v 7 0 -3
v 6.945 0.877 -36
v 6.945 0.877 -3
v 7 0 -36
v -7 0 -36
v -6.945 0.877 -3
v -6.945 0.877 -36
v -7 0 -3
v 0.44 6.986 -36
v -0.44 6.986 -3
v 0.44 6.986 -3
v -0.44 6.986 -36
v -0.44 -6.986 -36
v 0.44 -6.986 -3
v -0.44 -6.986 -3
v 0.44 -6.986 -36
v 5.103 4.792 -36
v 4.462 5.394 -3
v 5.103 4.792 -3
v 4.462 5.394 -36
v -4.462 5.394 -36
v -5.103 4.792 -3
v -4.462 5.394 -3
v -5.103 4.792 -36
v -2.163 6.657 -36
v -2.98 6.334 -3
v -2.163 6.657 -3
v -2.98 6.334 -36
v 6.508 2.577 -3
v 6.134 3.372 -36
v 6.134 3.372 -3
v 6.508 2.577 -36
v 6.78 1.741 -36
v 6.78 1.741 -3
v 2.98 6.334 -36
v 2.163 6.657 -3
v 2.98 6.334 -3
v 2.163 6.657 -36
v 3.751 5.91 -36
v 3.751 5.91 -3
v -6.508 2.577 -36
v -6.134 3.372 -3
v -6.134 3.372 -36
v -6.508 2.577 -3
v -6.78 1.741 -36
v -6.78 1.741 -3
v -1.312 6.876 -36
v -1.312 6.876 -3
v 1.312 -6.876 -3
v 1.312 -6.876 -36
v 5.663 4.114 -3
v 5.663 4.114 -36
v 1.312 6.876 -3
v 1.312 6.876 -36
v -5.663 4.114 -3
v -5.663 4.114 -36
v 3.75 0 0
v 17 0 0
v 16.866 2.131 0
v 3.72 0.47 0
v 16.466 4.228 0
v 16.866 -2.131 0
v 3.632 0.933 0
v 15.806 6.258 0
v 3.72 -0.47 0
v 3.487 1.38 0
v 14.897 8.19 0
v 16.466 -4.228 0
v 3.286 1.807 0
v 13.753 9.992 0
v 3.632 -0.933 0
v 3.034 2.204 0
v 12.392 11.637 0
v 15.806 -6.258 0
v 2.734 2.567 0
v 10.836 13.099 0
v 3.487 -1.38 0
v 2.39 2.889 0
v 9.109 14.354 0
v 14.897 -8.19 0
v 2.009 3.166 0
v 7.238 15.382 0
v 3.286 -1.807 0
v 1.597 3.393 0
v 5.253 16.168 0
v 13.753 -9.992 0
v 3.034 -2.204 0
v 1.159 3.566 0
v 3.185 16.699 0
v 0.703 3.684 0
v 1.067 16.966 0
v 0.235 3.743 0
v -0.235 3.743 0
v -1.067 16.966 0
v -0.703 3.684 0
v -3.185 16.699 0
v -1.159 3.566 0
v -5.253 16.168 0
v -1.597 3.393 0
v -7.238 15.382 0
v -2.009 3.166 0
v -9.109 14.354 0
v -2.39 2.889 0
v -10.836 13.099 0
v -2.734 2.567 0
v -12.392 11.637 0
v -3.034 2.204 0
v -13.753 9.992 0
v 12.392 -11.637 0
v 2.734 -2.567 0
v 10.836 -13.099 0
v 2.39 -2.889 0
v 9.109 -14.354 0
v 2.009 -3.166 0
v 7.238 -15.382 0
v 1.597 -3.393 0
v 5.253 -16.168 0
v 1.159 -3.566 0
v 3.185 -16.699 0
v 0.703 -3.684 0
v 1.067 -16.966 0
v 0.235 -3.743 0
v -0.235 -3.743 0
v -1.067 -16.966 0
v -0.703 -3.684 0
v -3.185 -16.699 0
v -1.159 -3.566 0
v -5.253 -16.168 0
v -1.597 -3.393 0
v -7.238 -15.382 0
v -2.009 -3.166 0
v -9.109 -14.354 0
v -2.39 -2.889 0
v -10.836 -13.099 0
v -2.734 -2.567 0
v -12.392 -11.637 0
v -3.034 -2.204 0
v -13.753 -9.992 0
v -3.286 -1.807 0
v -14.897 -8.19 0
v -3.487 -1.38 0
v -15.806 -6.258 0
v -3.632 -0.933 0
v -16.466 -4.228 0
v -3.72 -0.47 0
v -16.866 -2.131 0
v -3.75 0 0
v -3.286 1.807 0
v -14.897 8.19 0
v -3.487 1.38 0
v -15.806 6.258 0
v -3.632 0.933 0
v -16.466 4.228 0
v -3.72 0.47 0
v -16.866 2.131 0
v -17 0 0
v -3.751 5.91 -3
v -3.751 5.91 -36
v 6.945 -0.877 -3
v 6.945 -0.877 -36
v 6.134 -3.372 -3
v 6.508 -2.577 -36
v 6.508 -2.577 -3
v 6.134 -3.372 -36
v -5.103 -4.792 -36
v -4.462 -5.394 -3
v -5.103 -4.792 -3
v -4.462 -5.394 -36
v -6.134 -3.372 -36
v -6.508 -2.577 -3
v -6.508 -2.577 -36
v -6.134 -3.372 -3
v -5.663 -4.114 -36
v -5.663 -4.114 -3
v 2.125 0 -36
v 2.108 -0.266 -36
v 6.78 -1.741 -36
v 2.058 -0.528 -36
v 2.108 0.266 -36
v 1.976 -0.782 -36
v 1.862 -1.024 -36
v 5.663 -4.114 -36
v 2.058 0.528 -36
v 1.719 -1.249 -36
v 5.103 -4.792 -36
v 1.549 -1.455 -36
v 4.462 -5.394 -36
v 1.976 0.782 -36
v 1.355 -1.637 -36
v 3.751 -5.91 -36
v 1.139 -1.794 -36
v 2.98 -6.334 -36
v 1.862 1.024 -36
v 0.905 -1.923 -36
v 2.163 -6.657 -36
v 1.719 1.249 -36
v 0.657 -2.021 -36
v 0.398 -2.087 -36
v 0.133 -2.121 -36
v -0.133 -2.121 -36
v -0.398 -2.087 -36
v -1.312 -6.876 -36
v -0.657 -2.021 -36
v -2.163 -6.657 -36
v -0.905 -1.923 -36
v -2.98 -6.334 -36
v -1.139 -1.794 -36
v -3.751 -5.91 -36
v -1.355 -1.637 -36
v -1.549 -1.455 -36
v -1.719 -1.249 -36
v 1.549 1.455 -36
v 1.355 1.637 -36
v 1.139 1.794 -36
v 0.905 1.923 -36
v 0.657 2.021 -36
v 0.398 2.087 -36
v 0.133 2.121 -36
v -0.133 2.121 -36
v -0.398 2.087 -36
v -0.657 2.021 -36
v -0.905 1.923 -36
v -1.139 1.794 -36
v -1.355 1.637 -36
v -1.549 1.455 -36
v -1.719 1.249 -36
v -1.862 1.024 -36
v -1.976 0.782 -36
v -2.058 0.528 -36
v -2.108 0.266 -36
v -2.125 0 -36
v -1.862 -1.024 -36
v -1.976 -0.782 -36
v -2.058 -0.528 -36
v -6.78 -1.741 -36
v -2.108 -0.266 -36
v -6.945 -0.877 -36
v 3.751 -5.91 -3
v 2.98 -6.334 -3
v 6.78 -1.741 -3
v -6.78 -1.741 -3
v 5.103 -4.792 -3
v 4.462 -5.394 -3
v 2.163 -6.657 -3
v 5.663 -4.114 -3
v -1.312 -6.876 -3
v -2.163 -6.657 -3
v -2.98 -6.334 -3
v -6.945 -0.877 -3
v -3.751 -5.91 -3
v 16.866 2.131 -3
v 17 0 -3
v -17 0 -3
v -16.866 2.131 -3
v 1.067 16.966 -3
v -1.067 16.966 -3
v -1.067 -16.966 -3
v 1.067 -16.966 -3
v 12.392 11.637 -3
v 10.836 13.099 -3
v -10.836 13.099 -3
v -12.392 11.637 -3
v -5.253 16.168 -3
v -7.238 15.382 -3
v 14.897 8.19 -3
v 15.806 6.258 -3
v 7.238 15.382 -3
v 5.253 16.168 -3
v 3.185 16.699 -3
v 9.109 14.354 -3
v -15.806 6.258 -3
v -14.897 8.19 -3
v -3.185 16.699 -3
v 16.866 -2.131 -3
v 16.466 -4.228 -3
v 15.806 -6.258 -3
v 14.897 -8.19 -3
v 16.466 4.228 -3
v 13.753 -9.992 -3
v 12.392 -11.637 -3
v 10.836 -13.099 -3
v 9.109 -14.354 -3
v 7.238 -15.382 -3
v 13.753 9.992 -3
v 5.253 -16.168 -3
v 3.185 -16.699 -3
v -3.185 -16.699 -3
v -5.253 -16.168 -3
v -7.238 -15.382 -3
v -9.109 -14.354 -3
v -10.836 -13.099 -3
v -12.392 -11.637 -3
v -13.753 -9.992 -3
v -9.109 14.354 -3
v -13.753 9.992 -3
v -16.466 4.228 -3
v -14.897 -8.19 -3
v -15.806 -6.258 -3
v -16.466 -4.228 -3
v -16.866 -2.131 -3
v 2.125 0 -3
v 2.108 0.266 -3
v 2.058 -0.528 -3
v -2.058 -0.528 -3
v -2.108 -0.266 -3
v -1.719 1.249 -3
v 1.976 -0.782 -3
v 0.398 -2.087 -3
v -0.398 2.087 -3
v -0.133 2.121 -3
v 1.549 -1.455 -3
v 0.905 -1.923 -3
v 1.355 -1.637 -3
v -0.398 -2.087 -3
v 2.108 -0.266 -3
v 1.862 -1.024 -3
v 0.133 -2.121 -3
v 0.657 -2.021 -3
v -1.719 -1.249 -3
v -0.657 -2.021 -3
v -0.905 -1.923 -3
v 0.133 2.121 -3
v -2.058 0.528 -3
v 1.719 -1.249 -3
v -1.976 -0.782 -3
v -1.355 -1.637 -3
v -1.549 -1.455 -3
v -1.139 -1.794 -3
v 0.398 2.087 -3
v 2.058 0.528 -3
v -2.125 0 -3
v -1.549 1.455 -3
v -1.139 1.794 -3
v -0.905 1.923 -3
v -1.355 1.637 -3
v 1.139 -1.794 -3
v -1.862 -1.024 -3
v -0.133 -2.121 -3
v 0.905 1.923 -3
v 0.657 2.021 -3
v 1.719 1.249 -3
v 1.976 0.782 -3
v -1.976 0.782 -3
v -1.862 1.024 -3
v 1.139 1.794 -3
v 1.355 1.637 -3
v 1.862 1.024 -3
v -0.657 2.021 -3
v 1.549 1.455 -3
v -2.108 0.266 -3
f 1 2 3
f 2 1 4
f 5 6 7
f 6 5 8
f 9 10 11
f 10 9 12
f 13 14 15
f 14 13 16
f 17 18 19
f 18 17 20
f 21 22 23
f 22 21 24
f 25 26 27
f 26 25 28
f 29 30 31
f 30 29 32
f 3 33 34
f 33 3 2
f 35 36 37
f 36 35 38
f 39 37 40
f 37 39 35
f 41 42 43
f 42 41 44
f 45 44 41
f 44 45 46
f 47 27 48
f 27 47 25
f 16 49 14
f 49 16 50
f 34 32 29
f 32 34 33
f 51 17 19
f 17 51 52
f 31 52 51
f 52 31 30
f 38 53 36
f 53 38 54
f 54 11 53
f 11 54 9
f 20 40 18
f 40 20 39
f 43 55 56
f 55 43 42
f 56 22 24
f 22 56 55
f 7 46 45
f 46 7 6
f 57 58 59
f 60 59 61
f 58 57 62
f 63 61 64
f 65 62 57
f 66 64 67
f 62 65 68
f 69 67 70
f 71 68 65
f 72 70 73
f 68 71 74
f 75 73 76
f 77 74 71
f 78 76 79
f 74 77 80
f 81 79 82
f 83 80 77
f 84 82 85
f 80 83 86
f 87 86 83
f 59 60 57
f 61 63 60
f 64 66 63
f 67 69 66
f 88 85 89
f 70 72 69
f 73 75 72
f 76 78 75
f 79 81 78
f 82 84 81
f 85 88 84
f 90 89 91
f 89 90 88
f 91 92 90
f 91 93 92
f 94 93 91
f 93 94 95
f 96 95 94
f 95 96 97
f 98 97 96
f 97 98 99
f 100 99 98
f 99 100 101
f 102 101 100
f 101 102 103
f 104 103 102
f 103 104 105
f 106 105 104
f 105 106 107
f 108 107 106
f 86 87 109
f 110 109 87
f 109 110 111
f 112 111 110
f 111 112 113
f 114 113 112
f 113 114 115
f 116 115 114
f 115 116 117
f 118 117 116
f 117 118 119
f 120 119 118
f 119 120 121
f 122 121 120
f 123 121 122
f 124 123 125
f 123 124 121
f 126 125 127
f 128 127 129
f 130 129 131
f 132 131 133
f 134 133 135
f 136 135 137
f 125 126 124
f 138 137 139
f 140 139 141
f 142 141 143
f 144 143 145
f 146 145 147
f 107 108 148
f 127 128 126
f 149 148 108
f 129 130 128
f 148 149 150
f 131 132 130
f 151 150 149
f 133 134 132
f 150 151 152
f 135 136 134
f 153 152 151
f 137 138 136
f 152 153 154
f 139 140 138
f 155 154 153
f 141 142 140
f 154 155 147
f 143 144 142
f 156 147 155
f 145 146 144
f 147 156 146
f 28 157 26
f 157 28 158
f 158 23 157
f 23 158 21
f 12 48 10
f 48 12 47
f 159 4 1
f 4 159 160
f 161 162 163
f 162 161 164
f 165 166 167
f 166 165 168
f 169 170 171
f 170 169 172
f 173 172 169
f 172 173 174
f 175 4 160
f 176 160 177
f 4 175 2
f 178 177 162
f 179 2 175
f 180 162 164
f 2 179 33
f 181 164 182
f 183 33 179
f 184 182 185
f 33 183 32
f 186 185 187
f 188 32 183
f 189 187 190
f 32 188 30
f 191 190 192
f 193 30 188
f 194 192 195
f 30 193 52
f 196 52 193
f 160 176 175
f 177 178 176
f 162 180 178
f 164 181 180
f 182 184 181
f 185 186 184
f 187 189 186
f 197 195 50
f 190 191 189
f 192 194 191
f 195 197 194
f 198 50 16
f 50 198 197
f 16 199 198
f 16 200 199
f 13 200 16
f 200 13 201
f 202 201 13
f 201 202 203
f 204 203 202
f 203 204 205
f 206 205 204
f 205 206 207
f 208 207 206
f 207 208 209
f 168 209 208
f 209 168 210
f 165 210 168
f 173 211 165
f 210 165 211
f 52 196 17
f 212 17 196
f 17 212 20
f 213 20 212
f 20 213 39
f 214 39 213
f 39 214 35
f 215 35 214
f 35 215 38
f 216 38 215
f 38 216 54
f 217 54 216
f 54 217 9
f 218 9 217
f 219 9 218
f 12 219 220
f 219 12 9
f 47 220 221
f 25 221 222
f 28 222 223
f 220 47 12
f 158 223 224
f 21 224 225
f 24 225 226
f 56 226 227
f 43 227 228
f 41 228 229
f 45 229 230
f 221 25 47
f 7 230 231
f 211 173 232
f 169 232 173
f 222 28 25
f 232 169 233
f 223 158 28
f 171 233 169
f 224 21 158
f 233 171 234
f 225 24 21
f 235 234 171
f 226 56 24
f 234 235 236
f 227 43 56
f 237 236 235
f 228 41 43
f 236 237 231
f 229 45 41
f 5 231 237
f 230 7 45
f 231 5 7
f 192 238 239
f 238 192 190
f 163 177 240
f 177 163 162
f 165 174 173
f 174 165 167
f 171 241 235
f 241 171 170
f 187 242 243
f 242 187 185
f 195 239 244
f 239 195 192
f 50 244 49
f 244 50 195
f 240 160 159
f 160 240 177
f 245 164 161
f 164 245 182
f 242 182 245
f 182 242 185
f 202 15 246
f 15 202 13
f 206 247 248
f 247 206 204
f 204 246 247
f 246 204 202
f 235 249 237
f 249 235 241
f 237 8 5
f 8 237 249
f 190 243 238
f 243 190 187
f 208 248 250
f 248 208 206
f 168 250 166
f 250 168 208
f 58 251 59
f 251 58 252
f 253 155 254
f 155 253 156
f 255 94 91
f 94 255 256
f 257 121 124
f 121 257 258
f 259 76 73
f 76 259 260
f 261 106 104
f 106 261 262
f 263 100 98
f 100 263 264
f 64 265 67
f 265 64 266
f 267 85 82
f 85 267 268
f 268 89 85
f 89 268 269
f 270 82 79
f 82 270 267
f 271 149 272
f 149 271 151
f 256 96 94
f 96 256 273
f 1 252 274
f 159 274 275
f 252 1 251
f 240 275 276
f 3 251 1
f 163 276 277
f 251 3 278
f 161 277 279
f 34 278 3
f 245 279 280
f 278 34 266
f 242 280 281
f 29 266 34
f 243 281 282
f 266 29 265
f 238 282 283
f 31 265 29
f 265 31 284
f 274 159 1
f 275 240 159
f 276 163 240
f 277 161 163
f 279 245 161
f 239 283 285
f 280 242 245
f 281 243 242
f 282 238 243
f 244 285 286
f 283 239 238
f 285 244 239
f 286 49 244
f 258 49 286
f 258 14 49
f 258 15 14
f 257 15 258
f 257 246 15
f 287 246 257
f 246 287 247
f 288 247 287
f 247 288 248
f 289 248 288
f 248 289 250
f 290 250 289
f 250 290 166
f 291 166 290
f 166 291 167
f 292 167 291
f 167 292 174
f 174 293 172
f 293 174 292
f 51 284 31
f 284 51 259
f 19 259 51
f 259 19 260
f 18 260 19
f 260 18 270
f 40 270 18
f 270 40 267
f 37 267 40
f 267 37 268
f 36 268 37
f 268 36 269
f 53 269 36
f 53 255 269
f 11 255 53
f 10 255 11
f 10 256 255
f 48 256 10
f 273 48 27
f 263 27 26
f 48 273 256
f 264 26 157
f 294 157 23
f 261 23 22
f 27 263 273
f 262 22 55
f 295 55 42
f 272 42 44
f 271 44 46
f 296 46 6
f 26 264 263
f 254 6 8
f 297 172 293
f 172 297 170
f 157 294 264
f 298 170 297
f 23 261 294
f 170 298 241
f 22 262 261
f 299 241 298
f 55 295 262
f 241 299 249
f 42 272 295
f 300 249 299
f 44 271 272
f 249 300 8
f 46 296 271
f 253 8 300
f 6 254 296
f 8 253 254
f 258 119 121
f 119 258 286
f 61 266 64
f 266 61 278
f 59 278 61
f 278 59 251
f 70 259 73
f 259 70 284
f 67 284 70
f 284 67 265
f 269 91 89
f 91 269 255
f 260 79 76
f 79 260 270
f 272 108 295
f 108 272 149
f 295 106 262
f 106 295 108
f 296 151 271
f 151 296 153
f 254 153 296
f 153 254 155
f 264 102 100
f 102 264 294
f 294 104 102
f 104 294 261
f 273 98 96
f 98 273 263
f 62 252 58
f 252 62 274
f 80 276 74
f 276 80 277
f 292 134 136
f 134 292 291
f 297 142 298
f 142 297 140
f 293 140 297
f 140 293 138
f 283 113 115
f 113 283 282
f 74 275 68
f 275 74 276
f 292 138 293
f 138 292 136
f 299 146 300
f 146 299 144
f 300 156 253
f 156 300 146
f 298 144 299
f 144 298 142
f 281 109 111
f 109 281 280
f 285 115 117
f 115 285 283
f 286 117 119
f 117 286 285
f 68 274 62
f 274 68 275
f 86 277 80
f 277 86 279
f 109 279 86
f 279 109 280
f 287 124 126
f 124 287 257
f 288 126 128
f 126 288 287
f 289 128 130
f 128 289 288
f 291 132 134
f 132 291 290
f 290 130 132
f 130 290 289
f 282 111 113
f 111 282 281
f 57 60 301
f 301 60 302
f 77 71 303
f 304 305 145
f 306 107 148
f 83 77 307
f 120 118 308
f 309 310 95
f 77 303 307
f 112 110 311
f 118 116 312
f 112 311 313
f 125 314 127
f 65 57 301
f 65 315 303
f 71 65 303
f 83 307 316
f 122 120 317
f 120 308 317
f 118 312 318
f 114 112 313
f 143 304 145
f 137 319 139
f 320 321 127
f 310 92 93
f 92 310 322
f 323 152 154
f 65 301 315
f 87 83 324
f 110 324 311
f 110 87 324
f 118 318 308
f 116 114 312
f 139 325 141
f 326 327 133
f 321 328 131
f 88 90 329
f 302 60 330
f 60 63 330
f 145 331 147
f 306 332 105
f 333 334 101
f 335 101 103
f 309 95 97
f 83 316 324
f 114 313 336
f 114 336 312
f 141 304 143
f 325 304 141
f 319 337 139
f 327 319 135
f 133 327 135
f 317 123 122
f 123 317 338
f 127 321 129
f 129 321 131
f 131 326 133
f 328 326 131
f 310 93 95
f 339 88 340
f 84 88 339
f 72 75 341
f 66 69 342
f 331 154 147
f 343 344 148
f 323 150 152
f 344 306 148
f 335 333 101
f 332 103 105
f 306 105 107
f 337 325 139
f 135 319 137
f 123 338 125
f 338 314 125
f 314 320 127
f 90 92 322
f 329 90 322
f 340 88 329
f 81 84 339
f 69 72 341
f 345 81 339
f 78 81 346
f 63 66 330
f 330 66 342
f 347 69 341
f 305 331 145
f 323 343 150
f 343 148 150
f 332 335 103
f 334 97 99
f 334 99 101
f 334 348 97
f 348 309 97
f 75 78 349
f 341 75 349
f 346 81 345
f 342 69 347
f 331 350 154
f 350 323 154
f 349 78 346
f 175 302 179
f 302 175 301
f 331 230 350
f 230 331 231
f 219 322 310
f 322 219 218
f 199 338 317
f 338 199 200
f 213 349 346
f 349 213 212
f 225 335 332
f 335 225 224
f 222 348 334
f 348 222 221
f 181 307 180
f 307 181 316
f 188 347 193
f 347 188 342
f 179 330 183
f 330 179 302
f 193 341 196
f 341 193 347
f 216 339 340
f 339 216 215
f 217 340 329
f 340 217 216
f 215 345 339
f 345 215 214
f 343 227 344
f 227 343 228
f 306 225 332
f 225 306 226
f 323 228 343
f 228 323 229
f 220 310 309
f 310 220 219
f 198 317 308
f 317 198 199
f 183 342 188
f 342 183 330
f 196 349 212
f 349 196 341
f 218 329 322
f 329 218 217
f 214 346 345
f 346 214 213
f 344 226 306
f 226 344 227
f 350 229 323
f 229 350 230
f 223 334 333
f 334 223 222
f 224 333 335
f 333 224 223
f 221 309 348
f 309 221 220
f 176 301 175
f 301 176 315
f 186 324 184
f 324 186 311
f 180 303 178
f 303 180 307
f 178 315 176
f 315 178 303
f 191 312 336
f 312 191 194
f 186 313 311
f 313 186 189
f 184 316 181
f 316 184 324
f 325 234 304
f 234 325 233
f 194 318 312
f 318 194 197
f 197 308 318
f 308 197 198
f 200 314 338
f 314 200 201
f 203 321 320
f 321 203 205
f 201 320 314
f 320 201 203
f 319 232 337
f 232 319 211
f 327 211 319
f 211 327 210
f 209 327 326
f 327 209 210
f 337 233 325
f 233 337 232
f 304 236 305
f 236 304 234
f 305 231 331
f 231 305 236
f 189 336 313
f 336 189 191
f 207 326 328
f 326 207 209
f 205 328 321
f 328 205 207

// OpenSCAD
$fn = 50;


difference() {
	union() {
		translate(v = [0, 0, -36.0000000000]) {
			cylinder(h = 36, r = 7.0000000000);
		}
		translate(v = [0, 0, -3.0000000000]) {
			cylinder(h = 3, r = 17.0000000000);
		}
	}
	union() {
		translate(v = [0, 0, 0]) {
			rotate(a = [0, 0, 0]) {
				difference() {
					union() {
						#translate(v = [0, 0, -36.0000000000]) {
							cylinder(h = 36, r = 2.0000000000);
						}
						#translate(v = [0, 0, -3]) {
							cylinder(h = 3, r1 = 2.1250000000, r2 = 3.7500000000);
						}
						#translate(v = [0, 0, -36.0000000000]) {
							cylinder(h = 36, r = 2.1250000000);
						}
						#translate(v = [0, 0, -36.0000000000]) {
							cylinder(h = 36, r = 2.0000000000);
						}
					}
					union();
				}
			}
		}
	}
}
